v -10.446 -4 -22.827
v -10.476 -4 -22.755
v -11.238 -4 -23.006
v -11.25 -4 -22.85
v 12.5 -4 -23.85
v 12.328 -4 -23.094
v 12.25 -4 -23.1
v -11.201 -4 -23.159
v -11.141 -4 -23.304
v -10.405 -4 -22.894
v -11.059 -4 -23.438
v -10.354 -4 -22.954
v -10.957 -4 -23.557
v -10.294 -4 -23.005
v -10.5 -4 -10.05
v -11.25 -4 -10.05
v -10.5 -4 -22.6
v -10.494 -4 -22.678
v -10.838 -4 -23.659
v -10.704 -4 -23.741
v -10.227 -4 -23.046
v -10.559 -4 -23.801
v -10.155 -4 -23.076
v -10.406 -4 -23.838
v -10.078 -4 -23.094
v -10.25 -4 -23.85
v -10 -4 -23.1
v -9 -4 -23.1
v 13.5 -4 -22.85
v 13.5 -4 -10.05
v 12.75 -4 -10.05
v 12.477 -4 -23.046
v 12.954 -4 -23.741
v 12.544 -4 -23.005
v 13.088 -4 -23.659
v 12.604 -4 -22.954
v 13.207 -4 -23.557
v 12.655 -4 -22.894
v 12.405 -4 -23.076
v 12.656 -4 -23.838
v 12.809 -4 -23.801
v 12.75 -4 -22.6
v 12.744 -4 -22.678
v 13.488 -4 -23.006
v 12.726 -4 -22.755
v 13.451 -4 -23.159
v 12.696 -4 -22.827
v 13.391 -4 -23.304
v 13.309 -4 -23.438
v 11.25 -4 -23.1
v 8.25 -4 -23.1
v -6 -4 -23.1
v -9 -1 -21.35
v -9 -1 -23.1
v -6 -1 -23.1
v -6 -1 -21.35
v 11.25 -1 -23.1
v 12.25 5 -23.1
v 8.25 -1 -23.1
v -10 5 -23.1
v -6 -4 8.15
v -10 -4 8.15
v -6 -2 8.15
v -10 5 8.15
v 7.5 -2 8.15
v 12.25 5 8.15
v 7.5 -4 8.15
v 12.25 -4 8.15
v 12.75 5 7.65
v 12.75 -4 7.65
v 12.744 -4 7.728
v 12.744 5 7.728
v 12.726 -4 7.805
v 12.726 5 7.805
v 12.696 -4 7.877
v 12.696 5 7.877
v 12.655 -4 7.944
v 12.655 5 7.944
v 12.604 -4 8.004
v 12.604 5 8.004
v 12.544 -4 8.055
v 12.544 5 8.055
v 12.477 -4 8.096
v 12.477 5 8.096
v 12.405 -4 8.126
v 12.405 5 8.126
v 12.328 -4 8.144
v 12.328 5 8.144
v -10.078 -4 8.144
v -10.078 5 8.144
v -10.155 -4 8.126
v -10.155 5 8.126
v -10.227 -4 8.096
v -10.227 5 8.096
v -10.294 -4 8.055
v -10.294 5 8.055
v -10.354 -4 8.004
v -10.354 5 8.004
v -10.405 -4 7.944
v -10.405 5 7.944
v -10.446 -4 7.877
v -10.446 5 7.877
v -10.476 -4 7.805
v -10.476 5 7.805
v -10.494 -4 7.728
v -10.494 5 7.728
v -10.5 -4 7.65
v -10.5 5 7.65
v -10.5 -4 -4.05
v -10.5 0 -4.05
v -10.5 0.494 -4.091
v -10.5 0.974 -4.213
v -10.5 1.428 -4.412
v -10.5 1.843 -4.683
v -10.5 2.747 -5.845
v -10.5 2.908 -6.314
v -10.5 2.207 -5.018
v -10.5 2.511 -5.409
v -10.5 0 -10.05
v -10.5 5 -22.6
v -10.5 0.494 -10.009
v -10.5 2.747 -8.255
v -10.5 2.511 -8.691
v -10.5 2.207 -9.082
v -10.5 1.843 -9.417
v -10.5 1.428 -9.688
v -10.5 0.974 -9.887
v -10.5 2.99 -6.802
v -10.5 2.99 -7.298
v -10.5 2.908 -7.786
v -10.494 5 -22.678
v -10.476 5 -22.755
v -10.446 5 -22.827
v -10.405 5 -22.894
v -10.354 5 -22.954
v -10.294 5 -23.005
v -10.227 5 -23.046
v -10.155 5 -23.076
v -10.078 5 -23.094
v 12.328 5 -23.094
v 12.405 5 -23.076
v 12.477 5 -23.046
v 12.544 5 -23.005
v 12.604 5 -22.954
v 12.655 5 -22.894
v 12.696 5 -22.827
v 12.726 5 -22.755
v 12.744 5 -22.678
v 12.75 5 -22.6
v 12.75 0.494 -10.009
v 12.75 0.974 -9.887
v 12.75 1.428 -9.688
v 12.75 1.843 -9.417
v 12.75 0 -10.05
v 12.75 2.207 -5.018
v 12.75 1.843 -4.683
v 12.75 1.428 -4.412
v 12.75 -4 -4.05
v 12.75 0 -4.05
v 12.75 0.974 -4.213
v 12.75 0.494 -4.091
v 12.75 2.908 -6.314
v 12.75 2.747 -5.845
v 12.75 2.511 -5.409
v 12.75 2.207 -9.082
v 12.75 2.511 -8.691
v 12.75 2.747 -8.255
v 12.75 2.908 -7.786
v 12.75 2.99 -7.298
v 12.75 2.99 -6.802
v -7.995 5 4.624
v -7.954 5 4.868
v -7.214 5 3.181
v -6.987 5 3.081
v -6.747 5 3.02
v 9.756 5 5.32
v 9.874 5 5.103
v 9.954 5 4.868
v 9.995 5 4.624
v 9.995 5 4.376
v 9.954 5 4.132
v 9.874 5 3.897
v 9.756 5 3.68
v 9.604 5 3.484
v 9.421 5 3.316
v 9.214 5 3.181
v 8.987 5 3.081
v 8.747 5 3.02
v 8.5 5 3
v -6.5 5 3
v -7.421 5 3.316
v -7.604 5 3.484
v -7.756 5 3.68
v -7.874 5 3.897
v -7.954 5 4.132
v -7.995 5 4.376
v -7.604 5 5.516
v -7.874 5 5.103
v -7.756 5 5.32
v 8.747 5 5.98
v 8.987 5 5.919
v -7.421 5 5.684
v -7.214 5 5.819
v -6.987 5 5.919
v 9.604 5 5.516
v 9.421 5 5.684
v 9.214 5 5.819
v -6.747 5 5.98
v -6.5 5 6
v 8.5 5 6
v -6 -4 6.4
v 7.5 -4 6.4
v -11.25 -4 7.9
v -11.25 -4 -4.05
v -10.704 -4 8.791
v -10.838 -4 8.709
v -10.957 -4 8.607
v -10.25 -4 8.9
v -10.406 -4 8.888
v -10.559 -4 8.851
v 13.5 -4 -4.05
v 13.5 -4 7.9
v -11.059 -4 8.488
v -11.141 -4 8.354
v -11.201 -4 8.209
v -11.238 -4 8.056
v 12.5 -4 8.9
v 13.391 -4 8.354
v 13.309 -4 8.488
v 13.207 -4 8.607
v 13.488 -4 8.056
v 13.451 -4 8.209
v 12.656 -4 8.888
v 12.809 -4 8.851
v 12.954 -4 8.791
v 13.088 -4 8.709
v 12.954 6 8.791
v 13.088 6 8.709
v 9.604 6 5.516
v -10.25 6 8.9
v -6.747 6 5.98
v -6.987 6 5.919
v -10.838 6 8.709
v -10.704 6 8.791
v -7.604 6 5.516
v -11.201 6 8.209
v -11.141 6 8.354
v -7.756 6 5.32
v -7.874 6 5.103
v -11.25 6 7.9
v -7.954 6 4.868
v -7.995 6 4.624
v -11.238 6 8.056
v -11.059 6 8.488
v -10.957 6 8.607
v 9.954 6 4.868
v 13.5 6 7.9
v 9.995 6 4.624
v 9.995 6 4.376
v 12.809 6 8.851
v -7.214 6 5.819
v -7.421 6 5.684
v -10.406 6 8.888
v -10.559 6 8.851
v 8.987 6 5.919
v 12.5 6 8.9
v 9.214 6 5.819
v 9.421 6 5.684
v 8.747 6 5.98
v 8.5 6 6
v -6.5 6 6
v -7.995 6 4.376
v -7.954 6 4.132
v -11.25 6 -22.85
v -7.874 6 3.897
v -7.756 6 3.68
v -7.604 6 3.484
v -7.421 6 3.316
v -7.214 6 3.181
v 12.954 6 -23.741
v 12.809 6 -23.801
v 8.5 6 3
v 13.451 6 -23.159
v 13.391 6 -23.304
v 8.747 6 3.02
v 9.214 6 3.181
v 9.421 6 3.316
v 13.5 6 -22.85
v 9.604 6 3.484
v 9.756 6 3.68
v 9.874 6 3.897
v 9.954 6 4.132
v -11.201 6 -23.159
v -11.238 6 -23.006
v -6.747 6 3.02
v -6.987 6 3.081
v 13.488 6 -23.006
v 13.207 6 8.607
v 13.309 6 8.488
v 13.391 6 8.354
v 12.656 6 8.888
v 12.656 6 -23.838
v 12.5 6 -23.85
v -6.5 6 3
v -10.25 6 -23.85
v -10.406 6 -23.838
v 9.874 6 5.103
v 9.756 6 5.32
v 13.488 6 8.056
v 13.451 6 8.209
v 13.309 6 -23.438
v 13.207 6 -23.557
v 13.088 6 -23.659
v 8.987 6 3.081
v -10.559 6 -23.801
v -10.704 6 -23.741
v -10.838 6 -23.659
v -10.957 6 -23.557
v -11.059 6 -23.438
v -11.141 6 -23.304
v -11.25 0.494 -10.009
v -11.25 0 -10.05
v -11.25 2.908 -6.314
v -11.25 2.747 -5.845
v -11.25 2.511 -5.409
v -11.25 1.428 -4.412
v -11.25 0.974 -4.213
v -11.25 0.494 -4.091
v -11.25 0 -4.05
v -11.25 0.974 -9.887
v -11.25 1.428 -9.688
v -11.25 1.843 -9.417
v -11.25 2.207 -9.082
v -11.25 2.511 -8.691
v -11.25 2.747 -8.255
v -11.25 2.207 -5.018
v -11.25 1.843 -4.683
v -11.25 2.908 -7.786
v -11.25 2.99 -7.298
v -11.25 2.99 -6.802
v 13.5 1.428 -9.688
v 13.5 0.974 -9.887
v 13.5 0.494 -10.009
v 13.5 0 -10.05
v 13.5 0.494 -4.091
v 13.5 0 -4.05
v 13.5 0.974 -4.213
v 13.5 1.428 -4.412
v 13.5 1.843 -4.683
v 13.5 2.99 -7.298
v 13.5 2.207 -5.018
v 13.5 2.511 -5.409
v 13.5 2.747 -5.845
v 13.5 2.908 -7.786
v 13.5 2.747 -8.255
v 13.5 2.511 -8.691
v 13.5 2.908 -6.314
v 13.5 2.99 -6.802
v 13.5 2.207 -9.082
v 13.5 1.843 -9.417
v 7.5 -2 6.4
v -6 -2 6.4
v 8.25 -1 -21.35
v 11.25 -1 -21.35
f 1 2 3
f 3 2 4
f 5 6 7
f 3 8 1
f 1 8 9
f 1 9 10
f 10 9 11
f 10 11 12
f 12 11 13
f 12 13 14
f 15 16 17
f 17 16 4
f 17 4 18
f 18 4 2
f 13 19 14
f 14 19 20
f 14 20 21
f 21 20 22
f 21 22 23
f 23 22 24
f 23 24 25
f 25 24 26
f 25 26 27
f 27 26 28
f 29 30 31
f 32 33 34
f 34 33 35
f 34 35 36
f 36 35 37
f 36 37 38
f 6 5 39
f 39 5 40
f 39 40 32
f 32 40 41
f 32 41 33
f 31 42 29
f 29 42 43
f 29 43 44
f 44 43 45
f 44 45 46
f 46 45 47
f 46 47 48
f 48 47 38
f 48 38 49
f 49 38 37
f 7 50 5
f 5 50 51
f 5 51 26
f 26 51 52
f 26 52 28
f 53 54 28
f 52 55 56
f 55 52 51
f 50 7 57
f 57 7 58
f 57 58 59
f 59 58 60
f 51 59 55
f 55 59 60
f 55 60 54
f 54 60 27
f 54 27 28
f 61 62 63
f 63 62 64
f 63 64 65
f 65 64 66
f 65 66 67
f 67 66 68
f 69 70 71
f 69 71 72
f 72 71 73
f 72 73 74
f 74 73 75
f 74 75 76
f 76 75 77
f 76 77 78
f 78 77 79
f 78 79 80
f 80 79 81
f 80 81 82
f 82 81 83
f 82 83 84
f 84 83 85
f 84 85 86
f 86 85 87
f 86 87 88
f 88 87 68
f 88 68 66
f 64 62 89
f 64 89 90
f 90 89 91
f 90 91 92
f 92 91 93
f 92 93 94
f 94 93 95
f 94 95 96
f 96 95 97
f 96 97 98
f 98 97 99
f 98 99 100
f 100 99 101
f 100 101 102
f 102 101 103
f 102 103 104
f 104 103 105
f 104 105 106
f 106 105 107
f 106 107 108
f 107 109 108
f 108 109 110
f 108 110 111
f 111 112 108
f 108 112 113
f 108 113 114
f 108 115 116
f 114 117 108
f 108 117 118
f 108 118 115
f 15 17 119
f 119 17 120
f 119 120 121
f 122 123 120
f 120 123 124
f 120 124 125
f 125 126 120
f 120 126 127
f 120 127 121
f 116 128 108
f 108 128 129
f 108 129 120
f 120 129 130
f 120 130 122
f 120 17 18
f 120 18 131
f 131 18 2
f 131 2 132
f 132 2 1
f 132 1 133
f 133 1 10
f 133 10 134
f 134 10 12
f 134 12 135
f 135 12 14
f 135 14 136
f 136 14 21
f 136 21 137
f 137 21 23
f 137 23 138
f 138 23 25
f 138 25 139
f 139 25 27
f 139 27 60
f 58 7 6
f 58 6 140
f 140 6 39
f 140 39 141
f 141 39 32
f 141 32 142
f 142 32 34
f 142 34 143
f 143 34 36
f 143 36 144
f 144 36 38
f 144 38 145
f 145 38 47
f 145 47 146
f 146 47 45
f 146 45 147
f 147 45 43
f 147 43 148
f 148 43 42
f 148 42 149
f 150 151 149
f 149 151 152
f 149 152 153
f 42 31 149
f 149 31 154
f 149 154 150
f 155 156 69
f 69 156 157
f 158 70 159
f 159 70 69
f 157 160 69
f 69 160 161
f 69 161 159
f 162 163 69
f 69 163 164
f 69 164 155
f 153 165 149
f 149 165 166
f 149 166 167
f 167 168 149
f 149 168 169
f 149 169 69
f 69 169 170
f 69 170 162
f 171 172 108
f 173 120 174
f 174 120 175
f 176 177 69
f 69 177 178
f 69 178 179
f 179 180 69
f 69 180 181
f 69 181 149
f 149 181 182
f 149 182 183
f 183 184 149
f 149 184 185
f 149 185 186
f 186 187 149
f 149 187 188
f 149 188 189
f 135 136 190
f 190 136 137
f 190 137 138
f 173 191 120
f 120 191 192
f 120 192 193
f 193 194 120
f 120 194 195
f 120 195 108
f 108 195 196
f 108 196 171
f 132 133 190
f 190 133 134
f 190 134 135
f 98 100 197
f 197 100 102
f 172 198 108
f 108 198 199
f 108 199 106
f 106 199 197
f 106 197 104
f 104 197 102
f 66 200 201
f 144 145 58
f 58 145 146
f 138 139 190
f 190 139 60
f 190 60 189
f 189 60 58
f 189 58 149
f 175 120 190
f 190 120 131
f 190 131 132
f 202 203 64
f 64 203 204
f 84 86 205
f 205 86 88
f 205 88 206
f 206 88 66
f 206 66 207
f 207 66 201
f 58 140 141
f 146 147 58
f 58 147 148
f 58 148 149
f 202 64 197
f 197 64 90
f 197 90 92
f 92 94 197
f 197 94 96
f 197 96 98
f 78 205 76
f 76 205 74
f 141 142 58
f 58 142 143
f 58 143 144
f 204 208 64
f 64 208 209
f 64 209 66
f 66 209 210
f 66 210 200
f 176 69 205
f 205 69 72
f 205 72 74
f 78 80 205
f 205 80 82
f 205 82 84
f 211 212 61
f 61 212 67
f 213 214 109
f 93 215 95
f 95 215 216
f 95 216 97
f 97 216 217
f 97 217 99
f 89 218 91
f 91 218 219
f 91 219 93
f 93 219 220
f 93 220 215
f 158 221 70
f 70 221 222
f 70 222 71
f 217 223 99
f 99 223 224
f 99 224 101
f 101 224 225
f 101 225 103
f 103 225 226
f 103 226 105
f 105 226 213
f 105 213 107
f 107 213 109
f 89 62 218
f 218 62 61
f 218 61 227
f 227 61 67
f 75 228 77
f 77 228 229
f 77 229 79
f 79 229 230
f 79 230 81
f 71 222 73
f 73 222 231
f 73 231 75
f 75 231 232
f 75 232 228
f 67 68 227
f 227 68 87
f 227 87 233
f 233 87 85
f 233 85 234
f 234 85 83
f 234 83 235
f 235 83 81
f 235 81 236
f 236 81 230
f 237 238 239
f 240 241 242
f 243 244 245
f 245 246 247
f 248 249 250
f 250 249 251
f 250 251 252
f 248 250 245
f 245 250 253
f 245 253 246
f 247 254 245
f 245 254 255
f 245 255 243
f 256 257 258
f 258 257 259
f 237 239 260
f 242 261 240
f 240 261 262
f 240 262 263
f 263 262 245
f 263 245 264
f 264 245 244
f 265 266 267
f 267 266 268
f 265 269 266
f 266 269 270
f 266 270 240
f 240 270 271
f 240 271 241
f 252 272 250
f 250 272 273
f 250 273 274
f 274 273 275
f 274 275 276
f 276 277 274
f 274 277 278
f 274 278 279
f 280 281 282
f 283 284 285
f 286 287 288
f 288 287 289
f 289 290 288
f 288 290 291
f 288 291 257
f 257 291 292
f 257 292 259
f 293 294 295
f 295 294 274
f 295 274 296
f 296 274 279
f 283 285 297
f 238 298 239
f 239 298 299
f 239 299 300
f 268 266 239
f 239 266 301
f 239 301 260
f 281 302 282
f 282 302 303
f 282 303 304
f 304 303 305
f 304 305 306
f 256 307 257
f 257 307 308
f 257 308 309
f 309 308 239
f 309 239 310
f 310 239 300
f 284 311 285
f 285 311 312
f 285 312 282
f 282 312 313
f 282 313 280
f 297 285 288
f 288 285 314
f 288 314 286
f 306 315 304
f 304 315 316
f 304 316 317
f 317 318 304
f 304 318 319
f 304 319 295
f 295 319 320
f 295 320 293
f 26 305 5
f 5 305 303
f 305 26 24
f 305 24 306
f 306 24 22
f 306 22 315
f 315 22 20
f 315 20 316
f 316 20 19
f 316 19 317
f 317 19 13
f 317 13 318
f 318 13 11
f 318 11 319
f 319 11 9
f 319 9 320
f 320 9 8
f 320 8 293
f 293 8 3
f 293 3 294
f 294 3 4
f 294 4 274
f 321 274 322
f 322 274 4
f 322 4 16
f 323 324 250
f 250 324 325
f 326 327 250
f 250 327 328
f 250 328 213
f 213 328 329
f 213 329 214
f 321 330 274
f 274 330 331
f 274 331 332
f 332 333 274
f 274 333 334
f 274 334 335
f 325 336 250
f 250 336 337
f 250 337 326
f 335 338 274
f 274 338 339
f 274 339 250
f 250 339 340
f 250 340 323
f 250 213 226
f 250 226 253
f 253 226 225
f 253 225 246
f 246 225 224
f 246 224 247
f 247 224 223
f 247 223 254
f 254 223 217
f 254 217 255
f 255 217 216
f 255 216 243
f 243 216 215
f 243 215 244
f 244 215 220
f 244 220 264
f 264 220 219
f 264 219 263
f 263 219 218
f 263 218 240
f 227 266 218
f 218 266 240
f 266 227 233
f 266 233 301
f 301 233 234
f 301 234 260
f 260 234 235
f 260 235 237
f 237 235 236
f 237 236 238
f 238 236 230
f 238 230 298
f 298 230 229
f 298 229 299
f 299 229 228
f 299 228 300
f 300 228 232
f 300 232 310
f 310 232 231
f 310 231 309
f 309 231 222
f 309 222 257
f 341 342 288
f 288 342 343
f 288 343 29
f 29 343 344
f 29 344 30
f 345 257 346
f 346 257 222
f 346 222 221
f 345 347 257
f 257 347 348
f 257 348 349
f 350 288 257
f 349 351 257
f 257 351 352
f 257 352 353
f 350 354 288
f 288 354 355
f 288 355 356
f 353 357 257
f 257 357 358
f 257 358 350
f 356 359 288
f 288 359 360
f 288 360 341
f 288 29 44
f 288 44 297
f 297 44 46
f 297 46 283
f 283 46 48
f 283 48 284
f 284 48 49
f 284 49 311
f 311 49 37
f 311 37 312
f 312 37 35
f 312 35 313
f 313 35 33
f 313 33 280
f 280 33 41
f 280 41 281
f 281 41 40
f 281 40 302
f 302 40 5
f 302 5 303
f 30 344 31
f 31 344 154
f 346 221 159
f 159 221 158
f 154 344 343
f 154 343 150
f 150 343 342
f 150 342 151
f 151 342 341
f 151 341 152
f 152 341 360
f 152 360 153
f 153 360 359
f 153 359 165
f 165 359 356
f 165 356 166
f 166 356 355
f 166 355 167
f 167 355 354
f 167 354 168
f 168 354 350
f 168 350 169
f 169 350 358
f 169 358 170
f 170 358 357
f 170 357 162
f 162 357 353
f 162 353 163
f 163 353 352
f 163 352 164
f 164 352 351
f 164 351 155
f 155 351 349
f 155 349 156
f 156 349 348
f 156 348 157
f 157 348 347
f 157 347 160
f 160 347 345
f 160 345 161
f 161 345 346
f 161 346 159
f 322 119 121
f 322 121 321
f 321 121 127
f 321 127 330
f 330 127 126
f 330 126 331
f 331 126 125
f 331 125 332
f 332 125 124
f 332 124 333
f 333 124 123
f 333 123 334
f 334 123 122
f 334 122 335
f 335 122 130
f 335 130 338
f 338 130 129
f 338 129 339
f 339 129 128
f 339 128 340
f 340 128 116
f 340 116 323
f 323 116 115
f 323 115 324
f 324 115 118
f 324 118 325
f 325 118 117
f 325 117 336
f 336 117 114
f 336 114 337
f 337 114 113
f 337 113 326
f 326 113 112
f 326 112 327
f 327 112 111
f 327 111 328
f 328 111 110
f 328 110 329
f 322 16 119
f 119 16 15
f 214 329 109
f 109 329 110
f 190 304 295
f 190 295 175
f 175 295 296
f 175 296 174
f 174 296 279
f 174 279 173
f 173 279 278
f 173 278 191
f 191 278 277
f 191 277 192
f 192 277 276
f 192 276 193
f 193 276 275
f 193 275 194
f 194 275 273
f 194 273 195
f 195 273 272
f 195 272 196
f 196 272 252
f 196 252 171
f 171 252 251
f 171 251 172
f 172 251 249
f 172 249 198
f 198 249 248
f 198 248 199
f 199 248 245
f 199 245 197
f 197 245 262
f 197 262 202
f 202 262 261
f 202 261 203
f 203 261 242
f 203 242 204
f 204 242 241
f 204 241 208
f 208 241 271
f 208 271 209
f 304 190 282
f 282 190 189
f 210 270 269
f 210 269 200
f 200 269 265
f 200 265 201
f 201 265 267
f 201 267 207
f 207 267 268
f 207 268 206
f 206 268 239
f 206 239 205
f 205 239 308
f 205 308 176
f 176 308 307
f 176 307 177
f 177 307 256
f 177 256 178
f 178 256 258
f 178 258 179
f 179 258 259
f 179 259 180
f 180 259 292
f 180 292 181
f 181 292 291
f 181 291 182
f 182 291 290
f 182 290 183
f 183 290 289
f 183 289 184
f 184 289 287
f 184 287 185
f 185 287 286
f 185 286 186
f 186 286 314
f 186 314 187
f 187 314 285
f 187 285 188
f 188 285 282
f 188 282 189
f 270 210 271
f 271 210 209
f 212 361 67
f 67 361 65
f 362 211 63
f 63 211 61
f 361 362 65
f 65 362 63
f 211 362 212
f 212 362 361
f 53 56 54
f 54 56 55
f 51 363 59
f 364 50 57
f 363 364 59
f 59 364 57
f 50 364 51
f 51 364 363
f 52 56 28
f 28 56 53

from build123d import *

# Parameters (mm, degrees)
BOSS_EXTRUDE33_DEPTH = 5
BOSS_EXTRUDE34_START = 5
BOSS_EXTRUDE34_DEPTH = 1
BOSS_EXTRUDE35_START = -4
BOSS_EXTRUDE35_DEPTH = 4
CUT_EXTRUDE2_DEPTH   = 35.891044696
CUT_EXTRUDE3_DEPTH   = 30.173146899
SKETCH22_W           = 13.5
SKETCH22_H           = 2
BOSS_EXTRUDE37_DEPTH = 1.75
SKETCH23_W           = 3
SKETCH23_H           = 3
BOSS_EXTRUDE38_DEPTH = 1.75
CUT_EXTRUDE4_DEPTH   = 3
CUT_EXTRUDE5_DEPTH   = 17.5


with BuildPart() as part:
    # lid → Boss-Extrude33 (new body)
    with BuildSketch(Plane(origin=(0, 0, 0), x_dir=(1, 0, 0), z_dir=(0, 1, 0))):
        with BuildLine():
            Line((12.5, 23.85), (-10.25, 23.85))
            ThreePointArc((-10.25, 23.85), (-10.957106781, 23.557106781), (-11.25, 22.85))
            Line((-11.25, 22.85), (-11.25, -7.9))
            ThreePointArc((-11.25, -7.9), (-10.957106781, -8.607106781), (-10.25, -8.9))
            Line((-10.25, -8.9), (12.5, -8.9))
            ThreePointArc((12.5, -8.9), (13.207106781, -8.607106781), (13.5, -7.9))
            Line((13.5, -7.9), (13.5, 22.85))
            ThreePointArc((13.5, 22.85), (13.207106781, 23.557106781), (12.5, 23.85))
        make_face()
        with BuildLine():
            Line((-10.5, -7.65), (-10.5, 22.6))
            ThreePointArc((-10.5, 22.6), (-10.353553391, 22.953553391), (-10, 23.1))
            Line((-10, 23.1), (12.25, 23.1))
            ThreePointArc((12.25, 23.1), (12.603553391, 22.953553391), (12.75, 22.6))
            Line((12.75, 22.6), (12.75, -7.65))
            ThreePointArc((12.75, -7.65), (12.603553391, -8.003553391), (12.25, -8.15))
            Line((12.25, -8.15), (-10, -8.15))
            ThreePointArc((-10, -8.15), (-10.353553391, -8.003553391), (-10.5, -7.65))
        make_face(mode=Mode.SUBTRACT)
    extrude(amount=BOSS_EXTRUDE33_DEPTH)

    # lid<5> → Boss-Extrude34 (add)
    with BuildSketch(Plane(origin=(0, 0, 0), x_dir=(1, 0, 0), z_dir=(0, 1, 0)).offset(BOSS_EXTRUDE34_START)):
        with BuildLine():
            Line((12.5, 23.85), (-10.25, 23.85))
            ThreePointArc((-10.25, 23.85), (-10.957106781, 23.557106781), (-11.25, 22.85))
            Line((-11.25, 22.85), (-11.25, -7.9))
            ThreePointArc((-11.25, -7.9), (-10.957106781, -8.607106781), (-10.25, -8.9))
            Line((-10.25, -8.9), (12.5, -8.9))
            ThreePointArc((12.5, -8.9), (13.207106781, -8.607106781), (13.5, -7.9))
            Line((13.5, -7.9), (13.5, 22.85))
            ThreePointArc((13.5, 22.85), (13.207106781, 23.557106781), (12.5, 23.85))
        make_face()
    extrude(amount=BOSS_EXTRUDE34_DEPTH)

    # lid<7> → Boss-Extrude35 (add)
    with BuildSketch(Plane(origin=(0, 0, 0), x_dir=(1, 0, 0), z_dir=(0, 1, 0)).offset(BOSS_EXTRUDE35_START)):
        with BuildLine():
            Line((-10.25, 23.85), (12.5, 23.85))
            ThreePointArc((12.5, 23.85), (13.207106781, 23.557106781), (13.5, 22.85))
            Line((13.5, 22.85), (13.5, -7.9))
            ThreePointArc((13.5, -7.9), (13.207106781, -8.607106781), (12.5, -8.9))
            Line((12.5, -8.9), (-10.25, -8.9))
            ThreePointArc((-10.25, -8.9), (-10.957106781, -8.607106781), (-11.25, -7.9))
            Line((-11.25, -7.9), (-11.25, 22.85))
            ThreePointArc((-11.25, 22.85), (-10.957106781, 23.557106781), (-10.25, 23.85))
        make_face()
        with BuildLine():
            Line((-10.5, 22.6), (-10.5, -7.65))
            ThreePointArc((-10.5, -7.65), (-10.353553391, -8.003553391), (-10, -8.15))
            Line((-10, -8.15), (12.25, -8.15))
            ThreePointArc((12.25, -8.15), (12.603553391, -8.003553391), (12.75, -7.65))
            Line((12.75, -7.65), (12.75, 22.6))
            ThreePointArc((12.75, 22.6), (12.603553391, 22.953553391), (12.25, 23.1))
            Line((12.25, 23.1), (-10, 23.1))
            ThreePointArc((-10, 23.1), (-10.353553391, 22.953553391), (-10.5, 22.6))
        make_face(mode=Mode.SUBTRACT)
    extrude(amount=BOSS_EXTRUDE35_DEPTH)

    # Sketch21 → Cut-Extrude2 (cut, through all)
    with BuildSketch(Plane(origin=(13.5, 0, 0), x_dir=(0, 0, -1), z_dir=(1, 0, 0))):
        with BuildLine():
            Line((4.05, 0), (4.05, -4))
            Line((4.05, -4), (10.05, -4))
            Line((10.05, -4), (10.05, 0))
            ThreePointArc((10.05, 0), (7.05, 3), (4.05, 0))
        make_face()
    extrude(amount=-CUT_EXTRUDE2_DEPTH, mode=Mode.SUBTRACT)

    # Sketch20 → Cut-Extrude3 (cut, through all)
    with BuildSketch(Plane(origin=(0, 6, 0), x_dir=(1, 0, 0), z_dir=(0, 1, 0))):
        with BuildLine():
            Line((-6.5, -3), (8.5, -3))
            ThreePointArc((8.5, -3), (10, -4.5), (8.5, -6))
            Line((8.5, -6), (-6.5, -6))
            ThreePointArc((-6.5, -6), (-8, -4.5), (-6.5, -3))
        make_face()
    extrude(amount=-CUT_EXTRUDE3_DEPTH, mode=Mode.SUBTRACT)

    # Sketch22 → Boss-Extrude37 (add)
    with BuildSketch(Plane(origin=(0, 0, 8.15), x_dir=(-1, 0, 0), z_dir=(0, 0, -1))):
        with Locations((-0.75, -3)):
            Rectangle(SKETCH22_W, SKETCH22_H)
    extrude(amount=BOSS_EXTRUDE37_DEPTH)

    # Sketch23 → Boss-Extrude38 (add)
    with BuildSketch(Plane.XY.offset(-23.1)):
        with Locations((-7.5, -2.5)):
            Rectangle(SKETCH23_W, SKETCH23_H)
        with Locations((9.75, -2.5)):
            Rectangle(SKETCH23_W, SKETCH23_H)
    extrude(amount=BOSS_EXTRUDE38_DEPTH)

    # Sketch24 → Cut-Extrude4 (cut)
    with BuildSketch(Plane.ZY.offset(-8.25)):
        Polygon((-23.1, -4), (-21.35, -1), (-21.35, -4), align=None)
    extrude(amount=-CUT_EXTRUDE4_DEPTH, mode=Mode.SUBTRACT)

    # Sketch24<2> → Cut-Extrude5 (cut)
    with BuildSketch(Plane.ZY.offset(-8.25)):
        Polygon((-23.1, -4), (-21.35, -1), (-21.35, -4), align=None)
    extrude(amount=CUT_EXTRUDE5_DEPTH, mode=Mode.SUBTRACT)


solid = part.part
